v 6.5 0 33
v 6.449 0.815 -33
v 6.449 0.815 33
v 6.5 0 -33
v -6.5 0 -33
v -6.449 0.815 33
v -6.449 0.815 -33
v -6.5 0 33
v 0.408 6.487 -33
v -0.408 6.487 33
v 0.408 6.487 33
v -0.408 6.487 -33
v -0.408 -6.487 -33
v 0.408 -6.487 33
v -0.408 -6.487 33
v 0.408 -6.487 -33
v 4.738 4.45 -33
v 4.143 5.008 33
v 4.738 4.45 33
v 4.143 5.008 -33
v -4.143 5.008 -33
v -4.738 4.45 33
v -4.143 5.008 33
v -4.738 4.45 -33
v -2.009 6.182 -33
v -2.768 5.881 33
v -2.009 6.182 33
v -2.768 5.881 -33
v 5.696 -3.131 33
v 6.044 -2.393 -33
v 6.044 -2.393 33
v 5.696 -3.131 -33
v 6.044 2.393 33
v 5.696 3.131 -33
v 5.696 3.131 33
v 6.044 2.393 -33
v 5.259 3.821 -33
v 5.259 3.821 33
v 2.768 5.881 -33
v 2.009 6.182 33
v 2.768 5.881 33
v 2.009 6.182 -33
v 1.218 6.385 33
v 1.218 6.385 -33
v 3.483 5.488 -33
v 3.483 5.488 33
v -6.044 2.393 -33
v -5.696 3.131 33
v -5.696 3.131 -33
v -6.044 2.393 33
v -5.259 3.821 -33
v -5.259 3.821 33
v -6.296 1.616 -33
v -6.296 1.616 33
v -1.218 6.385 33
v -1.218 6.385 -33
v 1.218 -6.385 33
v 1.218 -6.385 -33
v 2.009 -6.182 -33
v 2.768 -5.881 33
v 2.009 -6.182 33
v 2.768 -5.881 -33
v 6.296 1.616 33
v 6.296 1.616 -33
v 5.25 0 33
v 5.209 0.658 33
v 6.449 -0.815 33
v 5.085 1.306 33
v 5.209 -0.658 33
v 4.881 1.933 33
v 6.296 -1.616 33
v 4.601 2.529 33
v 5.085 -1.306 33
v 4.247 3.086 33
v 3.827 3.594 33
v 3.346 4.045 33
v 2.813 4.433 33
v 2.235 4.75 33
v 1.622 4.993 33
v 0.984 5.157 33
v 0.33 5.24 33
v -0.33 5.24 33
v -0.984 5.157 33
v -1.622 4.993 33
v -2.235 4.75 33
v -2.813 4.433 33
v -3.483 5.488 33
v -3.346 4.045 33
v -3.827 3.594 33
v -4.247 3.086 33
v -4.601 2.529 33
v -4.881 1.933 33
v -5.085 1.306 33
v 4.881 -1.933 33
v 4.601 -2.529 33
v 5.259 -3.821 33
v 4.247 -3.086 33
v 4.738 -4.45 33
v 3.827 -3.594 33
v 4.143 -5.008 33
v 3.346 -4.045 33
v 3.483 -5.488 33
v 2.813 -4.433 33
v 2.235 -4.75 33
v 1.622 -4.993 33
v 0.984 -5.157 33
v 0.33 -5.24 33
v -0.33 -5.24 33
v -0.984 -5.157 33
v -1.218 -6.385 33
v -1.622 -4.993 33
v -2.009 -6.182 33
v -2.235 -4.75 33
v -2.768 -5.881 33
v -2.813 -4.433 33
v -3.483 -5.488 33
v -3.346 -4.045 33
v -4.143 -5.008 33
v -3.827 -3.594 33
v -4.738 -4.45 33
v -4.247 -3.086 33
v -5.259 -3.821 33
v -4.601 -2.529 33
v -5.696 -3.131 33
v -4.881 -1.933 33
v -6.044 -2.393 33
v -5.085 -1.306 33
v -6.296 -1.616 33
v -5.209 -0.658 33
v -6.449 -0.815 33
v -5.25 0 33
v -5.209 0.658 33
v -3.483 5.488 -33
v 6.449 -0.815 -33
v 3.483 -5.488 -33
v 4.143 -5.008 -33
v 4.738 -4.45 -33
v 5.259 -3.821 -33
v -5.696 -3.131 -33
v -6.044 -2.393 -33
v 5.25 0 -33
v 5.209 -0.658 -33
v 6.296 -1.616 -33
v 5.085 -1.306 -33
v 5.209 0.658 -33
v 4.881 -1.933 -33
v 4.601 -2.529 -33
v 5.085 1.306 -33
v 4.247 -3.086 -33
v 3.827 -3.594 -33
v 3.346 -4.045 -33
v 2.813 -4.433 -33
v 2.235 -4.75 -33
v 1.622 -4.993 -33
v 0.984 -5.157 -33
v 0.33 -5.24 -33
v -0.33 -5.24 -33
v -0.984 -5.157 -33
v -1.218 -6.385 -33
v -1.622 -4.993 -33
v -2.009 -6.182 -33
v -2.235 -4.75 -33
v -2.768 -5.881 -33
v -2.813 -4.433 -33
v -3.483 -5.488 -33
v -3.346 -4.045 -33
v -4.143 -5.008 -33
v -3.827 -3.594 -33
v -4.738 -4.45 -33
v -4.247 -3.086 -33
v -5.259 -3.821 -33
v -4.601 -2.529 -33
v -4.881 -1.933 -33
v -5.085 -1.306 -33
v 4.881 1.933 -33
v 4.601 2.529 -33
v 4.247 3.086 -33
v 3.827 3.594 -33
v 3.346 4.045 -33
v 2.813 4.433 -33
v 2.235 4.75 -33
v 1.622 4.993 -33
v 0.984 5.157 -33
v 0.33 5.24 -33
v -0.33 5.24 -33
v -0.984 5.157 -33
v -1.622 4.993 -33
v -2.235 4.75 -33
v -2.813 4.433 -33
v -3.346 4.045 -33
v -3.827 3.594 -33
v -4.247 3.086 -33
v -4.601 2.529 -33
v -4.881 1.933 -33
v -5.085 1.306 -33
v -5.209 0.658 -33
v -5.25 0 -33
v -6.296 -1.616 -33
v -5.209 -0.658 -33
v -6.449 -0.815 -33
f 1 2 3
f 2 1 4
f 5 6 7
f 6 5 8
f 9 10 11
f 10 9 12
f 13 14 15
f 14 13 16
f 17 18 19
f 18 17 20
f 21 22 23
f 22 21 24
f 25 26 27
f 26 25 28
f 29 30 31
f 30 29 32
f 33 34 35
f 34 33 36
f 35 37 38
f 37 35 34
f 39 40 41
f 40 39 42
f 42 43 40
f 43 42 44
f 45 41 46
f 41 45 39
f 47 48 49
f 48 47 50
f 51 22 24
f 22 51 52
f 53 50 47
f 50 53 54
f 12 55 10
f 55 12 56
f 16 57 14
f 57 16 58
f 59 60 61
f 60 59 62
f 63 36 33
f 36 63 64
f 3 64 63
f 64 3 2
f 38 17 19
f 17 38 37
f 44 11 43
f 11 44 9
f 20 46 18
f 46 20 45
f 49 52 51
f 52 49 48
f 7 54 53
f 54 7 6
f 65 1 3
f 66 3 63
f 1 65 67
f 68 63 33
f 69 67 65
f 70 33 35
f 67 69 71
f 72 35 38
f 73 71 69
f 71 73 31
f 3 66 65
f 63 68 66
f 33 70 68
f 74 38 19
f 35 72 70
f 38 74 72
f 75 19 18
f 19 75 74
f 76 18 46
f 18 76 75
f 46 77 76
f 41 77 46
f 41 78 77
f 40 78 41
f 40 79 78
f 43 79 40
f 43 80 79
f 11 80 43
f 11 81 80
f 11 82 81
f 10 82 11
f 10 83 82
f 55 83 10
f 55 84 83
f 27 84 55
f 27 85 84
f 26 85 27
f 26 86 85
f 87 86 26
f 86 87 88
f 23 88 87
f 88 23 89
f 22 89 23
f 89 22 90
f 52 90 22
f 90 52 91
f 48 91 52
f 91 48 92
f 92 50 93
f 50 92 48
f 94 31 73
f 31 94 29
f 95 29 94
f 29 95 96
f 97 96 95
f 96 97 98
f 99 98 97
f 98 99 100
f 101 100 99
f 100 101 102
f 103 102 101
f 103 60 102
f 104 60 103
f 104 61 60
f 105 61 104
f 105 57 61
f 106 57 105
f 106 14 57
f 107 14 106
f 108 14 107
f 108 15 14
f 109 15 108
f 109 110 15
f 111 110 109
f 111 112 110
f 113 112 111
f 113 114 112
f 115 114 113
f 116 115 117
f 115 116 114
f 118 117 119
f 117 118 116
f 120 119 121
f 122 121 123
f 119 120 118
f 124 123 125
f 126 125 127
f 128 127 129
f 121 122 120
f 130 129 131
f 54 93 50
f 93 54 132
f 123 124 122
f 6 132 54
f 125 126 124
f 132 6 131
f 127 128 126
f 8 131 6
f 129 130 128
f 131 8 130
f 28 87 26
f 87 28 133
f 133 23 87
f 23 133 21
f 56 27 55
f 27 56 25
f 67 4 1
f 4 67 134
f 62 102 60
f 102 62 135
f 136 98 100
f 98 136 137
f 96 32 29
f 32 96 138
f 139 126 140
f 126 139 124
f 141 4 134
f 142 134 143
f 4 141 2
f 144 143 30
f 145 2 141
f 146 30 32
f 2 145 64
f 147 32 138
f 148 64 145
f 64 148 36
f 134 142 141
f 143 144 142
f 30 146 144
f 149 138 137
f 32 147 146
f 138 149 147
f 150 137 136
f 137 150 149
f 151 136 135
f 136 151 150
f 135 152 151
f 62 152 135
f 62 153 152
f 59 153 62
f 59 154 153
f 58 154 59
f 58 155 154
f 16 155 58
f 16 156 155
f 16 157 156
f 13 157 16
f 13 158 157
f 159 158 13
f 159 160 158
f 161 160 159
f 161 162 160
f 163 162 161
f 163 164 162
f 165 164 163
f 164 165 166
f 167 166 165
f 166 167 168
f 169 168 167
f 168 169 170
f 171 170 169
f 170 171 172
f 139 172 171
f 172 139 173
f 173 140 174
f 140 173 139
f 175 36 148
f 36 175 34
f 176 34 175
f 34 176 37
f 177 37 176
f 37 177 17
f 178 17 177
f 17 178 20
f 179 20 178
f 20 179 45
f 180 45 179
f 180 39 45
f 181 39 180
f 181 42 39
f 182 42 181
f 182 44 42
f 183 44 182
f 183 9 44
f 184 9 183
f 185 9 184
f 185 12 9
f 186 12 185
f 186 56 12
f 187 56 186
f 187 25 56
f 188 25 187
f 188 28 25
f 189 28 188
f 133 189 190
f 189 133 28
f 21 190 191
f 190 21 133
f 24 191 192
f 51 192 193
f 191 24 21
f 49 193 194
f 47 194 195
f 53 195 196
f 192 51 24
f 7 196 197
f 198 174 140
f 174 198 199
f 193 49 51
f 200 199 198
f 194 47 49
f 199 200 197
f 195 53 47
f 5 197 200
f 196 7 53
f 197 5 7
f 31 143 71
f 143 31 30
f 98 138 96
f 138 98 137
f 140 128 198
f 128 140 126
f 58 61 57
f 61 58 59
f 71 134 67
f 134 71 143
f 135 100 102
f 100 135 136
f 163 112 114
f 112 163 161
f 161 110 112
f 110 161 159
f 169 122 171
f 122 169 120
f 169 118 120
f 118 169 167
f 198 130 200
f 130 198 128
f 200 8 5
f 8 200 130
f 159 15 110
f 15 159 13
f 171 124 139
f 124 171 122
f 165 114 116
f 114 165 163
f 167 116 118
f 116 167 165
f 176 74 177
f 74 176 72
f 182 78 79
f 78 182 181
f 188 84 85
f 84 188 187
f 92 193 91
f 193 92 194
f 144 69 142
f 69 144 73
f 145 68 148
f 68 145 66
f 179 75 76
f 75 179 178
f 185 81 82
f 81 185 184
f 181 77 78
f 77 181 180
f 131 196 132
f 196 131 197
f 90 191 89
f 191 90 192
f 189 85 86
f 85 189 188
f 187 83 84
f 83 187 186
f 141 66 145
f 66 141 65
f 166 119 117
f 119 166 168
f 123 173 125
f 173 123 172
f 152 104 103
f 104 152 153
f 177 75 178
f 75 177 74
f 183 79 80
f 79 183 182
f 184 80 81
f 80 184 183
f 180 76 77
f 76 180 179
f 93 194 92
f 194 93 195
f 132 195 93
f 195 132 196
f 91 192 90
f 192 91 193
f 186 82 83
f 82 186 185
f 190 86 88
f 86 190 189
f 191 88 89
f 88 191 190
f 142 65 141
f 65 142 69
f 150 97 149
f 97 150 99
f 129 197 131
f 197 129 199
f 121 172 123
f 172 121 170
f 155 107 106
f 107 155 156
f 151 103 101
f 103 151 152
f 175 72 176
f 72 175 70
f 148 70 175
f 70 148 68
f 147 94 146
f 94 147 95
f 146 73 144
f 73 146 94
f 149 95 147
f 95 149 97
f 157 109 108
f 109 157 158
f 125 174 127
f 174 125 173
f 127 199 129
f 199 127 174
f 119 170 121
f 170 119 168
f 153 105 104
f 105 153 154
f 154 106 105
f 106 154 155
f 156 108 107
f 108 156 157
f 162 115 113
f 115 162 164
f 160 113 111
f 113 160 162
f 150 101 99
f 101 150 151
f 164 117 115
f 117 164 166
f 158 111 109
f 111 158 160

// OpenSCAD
$fn = 50;


difference() {
	union() {
		translate(v = [0, 0, -33.0000000000]) {
			cylinder(h = 66, r = 6.5000000000);
		}
	}
	union() {
		translate(v = [0, 0, -100.0000000000]) {
			cylinder(h = 200, r = 5.2500000000);
		}
	}
}
